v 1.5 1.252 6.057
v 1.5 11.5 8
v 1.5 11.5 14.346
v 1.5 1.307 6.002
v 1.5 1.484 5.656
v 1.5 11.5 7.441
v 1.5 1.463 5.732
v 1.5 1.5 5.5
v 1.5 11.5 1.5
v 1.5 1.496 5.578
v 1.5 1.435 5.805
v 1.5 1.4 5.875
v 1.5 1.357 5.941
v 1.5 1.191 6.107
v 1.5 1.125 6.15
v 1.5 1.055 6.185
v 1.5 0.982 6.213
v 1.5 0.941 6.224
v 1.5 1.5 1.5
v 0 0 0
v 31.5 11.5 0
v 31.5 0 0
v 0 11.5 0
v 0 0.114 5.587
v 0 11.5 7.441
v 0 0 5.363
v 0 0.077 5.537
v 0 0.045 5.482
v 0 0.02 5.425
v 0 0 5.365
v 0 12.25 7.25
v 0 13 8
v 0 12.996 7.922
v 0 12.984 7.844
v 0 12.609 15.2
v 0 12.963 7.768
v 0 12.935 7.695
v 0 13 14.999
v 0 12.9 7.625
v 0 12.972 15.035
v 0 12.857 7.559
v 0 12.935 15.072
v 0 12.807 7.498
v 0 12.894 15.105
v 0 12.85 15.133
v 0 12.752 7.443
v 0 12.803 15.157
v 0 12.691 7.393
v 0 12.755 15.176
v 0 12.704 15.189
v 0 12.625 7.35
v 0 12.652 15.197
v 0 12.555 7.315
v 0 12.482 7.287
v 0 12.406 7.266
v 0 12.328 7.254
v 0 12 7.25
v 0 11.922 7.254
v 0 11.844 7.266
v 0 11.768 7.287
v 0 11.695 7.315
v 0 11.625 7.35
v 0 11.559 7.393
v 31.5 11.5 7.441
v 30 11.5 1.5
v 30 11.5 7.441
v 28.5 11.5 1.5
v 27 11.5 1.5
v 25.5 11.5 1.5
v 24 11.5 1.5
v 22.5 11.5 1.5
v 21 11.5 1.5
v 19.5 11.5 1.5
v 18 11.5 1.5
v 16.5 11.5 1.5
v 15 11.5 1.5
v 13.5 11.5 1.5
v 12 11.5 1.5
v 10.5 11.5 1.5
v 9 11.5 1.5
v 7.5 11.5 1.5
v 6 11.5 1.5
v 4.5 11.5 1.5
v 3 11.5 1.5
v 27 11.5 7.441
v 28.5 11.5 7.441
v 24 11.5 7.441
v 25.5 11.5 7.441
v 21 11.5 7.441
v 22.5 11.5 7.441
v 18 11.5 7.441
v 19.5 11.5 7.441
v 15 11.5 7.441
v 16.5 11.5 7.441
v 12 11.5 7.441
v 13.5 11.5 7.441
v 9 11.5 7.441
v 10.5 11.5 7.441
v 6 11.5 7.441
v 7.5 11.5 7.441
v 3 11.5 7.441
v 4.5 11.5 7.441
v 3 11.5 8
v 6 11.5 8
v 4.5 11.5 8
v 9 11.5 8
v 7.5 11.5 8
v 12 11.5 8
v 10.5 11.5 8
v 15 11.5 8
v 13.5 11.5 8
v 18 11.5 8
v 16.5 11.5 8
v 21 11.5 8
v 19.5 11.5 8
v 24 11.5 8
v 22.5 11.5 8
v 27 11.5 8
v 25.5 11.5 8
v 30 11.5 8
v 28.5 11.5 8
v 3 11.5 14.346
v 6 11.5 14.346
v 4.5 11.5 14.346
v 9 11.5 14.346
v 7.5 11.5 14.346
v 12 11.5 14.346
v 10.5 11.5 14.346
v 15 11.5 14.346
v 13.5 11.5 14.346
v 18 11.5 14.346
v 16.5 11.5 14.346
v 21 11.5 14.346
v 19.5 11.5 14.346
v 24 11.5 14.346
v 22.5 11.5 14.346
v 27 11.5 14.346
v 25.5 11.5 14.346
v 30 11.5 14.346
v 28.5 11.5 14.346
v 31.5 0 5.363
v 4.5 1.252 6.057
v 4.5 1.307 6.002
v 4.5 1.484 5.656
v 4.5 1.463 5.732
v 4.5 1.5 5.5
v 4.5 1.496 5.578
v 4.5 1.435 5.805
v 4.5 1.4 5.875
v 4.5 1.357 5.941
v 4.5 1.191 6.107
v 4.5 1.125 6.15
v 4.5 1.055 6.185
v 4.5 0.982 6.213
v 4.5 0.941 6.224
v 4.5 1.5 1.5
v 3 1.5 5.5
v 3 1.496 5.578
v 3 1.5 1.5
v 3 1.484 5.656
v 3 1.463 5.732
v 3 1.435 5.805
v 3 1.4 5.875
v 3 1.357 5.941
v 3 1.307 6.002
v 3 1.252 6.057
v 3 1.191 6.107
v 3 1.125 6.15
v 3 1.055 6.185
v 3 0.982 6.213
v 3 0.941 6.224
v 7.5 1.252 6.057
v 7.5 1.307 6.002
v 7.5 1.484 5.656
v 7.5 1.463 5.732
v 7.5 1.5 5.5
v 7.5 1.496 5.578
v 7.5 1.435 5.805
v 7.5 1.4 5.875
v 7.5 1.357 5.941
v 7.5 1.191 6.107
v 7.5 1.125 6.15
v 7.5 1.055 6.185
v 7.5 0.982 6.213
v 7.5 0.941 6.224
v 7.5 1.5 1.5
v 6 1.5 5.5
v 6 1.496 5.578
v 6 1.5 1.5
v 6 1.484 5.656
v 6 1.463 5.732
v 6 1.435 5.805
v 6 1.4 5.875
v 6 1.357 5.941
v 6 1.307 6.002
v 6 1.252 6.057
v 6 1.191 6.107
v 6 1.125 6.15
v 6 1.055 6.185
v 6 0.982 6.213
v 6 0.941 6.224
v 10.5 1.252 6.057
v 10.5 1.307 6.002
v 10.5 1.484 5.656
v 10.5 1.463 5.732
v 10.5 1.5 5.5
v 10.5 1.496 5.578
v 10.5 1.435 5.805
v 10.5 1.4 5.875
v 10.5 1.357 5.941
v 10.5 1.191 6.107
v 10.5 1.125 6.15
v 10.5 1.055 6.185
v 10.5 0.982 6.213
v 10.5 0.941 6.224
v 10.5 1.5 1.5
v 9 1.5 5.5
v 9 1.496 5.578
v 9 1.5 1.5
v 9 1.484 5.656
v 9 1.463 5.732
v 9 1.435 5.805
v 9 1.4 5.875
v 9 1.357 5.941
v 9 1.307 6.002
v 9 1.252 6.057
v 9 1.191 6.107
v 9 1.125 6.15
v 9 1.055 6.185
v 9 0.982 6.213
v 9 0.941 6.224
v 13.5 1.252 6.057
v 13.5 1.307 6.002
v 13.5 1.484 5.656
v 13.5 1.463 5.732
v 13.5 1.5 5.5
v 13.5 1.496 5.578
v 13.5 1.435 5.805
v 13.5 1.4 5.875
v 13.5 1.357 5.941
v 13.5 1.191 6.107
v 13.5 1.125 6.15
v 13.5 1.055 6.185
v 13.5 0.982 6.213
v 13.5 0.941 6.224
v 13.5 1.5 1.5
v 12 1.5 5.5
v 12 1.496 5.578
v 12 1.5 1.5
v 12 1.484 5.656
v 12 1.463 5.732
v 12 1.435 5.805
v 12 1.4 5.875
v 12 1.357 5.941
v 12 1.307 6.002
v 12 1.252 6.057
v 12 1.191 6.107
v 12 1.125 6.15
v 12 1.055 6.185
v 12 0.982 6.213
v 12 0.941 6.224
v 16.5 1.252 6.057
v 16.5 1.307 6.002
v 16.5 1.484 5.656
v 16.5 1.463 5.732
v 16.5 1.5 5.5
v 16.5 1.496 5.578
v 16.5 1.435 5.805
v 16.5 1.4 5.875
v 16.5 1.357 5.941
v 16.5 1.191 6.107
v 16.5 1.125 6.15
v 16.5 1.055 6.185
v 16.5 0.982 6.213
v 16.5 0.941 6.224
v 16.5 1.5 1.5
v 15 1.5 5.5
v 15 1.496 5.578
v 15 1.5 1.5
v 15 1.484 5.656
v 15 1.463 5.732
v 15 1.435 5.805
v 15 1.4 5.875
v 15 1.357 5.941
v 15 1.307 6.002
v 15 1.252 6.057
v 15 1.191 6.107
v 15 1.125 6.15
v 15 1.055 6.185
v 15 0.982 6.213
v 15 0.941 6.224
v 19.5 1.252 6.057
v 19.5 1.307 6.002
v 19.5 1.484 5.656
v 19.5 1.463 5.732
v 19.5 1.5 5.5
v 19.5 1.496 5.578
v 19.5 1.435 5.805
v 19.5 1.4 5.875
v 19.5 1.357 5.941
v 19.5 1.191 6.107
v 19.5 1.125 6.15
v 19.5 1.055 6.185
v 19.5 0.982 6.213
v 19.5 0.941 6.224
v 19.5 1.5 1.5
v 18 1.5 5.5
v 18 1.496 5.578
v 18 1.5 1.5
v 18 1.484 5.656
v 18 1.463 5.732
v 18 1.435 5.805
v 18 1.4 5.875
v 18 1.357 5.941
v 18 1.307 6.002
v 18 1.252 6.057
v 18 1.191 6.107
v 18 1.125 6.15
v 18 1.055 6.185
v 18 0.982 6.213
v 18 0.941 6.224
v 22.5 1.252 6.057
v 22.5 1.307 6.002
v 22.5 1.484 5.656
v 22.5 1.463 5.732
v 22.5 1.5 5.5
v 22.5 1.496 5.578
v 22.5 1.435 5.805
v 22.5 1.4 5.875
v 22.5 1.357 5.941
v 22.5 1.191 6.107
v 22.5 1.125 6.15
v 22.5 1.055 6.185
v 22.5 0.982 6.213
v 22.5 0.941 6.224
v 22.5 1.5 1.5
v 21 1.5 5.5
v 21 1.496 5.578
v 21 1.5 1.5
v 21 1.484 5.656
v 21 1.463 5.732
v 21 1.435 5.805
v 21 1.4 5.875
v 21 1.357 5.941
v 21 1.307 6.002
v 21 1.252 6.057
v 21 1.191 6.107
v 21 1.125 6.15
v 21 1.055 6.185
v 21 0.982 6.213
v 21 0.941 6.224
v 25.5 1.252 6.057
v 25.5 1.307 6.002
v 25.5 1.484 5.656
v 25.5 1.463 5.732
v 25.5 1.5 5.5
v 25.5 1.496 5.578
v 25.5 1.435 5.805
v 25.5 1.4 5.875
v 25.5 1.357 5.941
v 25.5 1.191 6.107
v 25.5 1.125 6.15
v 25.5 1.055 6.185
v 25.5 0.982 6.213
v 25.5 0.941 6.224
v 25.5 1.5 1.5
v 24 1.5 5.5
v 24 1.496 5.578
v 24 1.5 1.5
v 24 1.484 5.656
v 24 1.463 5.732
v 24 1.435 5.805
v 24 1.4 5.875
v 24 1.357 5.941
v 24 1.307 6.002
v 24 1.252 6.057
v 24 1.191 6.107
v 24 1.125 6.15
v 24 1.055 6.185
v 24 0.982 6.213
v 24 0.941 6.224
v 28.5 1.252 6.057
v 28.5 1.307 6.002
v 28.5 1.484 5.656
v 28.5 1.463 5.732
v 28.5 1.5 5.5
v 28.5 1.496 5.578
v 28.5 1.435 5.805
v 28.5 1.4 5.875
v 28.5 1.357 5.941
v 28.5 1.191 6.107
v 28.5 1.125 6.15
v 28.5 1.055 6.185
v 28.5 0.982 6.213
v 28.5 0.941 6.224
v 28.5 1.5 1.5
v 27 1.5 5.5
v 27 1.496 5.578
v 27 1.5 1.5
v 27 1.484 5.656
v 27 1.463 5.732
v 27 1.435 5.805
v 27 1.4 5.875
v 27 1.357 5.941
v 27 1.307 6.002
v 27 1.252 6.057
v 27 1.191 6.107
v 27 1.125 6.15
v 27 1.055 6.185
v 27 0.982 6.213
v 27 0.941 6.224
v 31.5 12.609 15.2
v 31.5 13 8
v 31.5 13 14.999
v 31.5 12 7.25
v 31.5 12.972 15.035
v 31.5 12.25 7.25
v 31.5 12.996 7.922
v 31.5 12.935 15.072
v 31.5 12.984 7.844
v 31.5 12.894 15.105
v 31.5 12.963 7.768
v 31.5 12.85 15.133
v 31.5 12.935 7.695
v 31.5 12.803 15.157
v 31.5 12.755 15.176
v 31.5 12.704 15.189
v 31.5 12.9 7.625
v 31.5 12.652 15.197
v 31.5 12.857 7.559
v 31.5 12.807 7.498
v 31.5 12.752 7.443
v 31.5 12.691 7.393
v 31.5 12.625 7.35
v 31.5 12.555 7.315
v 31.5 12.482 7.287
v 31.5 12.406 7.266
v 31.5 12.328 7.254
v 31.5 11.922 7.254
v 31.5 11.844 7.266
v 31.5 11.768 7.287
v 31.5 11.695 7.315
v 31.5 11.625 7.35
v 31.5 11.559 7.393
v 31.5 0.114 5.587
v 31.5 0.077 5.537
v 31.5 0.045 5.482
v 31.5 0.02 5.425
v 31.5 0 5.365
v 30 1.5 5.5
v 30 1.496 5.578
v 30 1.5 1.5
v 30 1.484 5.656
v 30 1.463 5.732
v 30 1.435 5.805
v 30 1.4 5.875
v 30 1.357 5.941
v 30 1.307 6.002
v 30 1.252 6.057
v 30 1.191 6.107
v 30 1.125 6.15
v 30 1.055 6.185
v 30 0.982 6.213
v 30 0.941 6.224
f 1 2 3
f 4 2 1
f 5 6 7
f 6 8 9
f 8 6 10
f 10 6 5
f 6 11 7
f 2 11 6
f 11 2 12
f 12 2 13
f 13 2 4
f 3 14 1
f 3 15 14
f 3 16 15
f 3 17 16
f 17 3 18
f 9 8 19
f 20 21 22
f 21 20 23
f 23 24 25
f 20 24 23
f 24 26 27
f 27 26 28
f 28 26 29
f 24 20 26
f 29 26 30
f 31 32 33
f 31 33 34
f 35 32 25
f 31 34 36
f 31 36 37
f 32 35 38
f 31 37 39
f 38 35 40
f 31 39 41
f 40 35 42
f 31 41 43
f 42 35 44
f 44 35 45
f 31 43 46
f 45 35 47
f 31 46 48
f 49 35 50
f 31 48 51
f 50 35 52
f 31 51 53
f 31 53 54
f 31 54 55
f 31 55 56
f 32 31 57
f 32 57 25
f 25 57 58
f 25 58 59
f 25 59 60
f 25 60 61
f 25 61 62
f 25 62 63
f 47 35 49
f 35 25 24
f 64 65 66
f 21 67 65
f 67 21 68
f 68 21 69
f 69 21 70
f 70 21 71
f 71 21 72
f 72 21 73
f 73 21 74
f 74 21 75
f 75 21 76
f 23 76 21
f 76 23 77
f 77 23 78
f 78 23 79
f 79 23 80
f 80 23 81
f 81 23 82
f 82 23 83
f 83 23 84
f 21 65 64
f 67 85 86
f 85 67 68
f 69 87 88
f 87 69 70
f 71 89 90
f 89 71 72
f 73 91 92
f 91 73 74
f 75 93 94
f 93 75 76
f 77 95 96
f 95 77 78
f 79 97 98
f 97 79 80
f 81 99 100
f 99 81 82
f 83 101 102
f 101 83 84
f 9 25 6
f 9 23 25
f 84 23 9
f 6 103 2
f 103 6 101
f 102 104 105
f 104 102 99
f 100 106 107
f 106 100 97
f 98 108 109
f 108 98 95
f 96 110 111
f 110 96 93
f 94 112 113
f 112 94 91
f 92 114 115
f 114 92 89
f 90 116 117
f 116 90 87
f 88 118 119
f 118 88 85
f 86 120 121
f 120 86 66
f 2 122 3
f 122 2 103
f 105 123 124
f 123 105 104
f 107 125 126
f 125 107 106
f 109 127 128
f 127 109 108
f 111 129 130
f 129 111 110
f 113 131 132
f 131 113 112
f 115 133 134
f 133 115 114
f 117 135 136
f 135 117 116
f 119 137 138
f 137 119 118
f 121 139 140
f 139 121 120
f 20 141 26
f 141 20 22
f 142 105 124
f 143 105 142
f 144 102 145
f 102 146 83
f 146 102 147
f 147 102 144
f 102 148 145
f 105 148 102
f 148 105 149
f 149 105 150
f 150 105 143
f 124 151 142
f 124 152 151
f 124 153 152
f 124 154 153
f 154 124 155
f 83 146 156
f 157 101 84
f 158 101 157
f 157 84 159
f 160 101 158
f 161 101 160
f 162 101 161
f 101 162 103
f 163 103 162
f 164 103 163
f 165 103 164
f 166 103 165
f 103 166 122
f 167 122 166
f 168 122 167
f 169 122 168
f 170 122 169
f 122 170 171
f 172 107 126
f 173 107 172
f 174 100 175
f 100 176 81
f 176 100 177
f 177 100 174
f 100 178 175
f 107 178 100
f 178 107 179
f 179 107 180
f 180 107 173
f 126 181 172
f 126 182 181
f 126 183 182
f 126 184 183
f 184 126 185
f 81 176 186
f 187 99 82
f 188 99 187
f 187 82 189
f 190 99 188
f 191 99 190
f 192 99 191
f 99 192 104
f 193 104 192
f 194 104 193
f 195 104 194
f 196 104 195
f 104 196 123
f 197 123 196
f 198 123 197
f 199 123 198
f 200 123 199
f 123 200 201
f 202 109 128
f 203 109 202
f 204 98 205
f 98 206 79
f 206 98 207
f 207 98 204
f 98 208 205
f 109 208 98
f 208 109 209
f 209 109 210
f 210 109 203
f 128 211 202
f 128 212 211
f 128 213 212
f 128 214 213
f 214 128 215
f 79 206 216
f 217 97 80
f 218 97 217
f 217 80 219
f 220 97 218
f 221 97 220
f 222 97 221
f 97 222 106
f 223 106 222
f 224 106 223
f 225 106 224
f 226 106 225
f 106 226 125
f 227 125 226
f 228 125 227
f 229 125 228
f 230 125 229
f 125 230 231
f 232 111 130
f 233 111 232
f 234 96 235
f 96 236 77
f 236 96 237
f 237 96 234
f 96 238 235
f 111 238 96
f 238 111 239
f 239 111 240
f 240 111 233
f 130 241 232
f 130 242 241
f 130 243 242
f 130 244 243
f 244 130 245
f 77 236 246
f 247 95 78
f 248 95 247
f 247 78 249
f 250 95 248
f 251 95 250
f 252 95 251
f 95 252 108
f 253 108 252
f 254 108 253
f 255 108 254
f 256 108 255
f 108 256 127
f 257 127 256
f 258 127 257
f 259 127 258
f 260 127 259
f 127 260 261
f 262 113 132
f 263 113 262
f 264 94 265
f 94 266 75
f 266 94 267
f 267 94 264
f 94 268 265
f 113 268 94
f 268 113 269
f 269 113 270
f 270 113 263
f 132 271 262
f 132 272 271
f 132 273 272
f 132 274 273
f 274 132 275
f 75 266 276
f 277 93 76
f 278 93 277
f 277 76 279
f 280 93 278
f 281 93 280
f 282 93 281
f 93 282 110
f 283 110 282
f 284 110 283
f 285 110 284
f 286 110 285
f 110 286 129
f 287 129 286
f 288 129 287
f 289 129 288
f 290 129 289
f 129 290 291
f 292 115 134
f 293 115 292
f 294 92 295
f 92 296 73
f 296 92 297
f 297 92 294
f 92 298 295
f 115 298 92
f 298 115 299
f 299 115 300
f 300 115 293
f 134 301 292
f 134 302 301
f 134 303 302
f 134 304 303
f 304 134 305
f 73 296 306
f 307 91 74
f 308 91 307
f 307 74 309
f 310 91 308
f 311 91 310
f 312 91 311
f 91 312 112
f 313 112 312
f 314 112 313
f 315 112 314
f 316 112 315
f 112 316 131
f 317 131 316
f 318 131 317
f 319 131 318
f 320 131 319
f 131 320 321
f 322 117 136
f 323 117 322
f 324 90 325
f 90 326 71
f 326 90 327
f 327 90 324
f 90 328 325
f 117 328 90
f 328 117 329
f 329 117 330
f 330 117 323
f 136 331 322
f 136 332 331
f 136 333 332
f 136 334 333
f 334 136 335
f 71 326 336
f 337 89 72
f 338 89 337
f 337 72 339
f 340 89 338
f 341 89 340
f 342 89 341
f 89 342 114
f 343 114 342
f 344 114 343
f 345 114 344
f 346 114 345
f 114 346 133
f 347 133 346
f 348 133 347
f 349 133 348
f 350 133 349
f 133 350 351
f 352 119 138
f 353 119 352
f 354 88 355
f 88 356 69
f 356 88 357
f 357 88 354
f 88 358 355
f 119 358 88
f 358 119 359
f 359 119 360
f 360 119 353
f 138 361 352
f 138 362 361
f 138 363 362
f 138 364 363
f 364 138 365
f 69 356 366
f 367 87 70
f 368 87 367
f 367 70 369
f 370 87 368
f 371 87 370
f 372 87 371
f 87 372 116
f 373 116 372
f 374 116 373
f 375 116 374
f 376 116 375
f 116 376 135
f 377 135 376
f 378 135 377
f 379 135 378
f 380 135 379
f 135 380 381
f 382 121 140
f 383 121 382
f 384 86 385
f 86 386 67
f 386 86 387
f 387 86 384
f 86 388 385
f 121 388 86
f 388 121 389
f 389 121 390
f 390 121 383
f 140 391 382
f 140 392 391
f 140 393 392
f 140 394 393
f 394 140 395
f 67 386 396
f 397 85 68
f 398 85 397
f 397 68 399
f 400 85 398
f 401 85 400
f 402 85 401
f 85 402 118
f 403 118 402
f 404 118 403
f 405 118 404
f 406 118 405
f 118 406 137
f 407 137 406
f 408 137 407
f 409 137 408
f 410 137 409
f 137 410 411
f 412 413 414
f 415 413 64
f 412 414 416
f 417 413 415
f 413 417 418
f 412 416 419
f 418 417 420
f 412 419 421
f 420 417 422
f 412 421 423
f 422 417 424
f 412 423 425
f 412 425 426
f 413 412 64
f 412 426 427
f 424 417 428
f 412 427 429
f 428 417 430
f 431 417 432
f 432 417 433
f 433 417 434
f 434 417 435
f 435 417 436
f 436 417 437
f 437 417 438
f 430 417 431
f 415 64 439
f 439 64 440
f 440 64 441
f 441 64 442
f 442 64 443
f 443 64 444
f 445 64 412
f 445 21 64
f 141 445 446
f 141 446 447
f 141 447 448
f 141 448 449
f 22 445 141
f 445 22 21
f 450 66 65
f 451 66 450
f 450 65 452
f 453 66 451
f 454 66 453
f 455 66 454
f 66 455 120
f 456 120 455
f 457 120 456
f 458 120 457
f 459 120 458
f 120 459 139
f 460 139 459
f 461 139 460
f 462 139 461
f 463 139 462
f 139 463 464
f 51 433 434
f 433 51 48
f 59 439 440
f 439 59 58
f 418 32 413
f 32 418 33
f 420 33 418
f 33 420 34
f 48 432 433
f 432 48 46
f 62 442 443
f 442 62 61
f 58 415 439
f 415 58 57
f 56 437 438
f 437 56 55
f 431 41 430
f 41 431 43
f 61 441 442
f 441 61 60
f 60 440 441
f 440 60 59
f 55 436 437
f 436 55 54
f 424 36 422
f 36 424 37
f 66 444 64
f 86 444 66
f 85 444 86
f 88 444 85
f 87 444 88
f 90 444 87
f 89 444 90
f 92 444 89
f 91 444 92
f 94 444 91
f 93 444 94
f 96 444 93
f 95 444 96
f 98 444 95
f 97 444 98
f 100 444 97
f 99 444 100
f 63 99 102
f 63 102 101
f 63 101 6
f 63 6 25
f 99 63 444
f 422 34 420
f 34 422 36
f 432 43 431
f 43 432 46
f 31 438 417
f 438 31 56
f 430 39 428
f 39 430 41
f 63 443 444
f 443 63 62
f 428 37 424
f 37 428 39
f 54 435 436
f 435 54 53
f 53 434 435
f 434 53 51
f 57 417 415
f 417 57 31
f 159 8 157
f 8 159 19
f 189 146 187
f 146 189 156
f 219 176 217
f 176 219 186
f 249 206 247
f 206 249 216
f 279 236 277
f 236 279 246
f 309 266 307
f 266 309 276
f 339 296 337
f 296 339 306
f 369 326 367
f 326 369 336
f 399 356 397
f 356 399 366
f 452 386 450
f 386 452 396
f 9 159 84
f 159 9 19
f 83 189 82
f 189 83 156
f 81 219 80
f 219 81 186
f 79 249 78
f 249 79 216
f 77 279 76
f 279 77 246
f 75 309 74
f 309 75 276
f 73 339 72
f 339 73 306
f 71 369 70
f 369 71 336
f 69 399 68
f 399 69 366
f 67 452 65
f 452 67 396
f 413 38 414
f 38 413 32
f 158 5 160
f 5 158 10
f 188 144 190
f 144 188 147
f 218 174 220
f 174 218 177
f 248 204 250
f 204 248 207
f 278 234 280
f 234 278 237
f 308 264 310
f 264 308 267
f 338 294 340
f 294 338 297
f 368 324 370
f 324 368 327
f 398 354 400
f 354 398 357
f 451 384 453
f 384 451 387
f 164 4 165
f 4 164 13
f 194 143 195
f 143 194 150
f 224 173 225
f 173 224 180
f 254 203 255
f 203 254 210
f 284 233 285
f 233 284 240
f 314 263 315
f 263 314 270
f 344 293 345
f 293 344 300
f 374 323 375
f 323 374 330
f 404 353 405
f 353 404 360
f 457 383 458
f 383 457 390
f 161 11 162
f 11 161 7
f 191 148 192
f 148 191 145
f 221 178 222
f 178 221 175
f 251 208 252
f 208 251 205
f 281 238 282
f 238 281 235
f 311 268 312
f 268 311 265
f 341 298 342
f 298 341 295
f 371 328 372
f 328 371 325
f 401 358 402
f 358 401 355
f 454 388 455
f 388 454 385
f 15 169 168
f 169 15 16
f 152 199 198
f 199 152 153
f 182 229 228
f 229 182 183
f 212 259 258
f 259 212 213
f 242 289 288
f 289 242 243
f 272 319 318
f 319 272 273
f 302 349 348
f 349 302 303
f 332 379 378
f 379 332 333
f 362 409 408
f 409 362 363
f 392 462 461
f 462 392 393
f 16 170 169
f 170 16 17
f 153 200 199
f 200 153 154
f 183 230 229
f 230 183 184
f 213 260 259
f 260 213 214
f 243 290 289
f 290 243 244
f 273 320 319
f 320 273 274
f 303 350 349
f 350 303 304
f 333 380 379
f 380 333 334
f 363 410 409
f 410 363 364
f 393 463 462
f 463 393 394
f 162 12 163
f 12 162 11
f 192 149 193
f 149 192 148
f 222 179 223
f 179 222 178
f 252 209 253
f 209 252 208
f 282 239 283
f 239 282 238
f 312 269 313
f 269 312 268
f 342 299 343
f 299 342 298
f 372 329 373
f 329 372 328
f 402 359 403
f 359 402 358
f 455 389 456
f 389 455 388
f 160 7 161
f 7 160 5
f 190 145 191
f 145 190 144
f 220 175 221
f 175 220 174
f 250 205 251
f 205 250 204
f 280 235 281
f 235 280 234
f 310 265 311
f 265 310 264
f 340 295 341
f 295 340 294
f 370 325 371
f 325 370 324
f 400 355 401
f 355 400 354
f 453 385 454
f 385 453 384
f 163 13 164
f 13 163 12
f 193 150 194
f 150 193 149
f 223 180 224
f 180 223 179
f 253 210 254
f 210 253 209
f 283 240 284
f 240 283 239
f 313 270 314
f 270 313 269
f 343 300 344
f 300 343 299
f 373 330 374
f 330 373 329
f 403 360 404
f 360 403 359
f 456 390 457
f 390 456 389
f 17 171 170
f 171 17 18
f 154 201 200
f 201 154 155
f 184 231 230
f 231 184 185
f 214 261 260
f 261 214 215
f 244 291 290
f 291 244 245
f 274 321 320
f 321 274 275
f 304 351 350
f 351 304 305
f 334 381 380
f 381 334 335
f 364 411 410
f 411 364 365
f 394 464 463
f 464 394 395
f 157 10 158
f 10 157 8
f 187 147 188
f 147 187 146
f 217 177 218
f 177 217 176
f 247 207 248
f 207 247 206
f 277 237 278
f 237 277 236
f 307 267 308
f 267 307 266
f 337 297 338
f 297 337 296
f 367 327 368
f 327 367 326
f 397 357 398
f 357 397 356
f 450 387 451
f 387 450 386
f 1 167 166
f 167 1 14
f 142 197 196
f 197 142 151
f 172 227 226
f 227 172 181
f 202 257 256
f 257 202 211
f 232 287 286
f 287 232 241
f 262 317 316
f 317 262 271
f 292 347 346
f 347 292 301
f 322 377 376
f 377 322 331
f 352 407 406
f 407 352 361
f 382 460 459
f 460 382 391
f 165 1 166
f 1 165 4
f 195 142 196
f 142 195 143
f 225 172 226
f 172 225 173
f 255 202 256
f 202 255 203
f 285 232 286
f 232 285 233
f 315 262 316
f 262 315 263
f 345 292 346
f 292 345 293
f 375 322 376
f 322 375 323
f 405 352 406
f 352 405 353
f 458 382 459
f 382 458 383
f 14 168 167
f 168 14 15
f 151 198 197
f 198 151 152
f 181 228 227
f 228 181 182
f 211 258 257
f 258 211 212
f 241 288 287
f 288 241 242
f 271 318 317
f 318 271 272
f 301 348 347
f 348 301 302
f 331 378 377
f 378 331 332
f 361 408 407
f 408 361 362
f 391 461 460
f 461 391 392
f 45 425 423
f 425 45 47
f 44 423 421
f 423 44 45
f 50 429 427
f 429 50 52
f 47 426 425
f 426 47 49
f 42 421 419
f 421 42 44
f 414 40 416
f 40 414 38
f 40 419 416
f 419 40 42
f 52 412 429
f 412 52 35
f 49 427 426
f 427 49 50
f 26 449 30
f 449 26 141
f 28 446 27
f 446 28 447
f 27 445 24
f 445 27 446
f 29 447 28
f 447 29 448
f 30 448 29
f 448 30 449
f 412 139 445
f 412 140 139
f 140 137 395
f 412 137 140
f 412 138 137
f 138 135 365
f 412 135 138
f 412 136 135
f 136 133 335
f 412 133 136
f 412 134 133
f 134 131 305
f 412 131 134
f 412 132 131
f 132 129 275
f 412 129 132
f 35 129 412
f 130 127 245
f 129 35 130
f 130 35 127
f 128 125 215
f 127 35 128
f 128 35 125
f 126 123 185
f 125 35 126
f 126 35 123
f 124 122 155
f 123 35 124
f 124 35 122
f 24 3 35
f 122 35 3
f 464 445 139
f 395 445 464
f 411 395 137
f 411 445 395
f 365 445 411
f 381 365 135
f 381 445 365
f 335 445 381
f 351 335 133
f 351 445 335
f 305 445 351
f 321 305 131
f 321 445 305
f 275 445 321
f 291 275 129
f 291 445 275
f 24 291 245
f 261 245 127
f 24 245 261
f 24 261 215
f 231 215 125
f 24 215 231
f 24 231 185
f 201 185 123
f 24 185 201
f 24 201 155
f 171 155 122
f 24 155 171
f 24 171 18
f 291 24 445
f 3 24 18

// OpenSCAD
count = 10;
tot_len = count * 3 + 1.5;
cyl_sides = 60;
difference() {
	union(){
		for (i = [0 : abs(3) : count * 3]) {
			translate([i, 0, 0]){
				cube([1.5, 11.5, 15.5], center=false);
			}
		}
		translate([0, 0, 0]){
			cube([tot_len, 1.5, 5.5], center=false);
		}
		cube([tot_len, 11.5, 1.5], center=false);
		translate([0, 11.5, 8]){
			cube([tot_len, 1.5, 7.5], center=false);
		}
		translate([0, 0.75, 5.5]){
			rotate([0, 90, 0]){
				{
					$fn=cyl_sides;
					cylinder(r1=0.75, r2=0.75, h=tot_len, center=false);
				}
			}
		}
		difference() {
				hull(){
					translate([0, 12.25, 8]){
						rotate([0, 90, 0]){
							{
								$fn=cyl_sides;
								cylinder(r1=0.75, r2=0.75, h=tot_len, center=false);
							}
						}
					}
					translate([0, 12, 8]){
						rotate([0, 90, 0]){
							{
								$fn=cyl_sides;
								cylinder(r1=0.75, r2=0.75, h=tot_len, center=false);
							}
						}
					}
				}
				cube([tot_len, 11.5, 15.5], center=false);
		 }
	}
	translate([-0.5, 0, 5.5]){
		rotate([(atan(10 / 13)), 0, 0]){
			cube([tot_len+1, 20, 10], center=false);
		}
	}
	translate([-0.5, 12.6, 14.7]){
		rotate([30, 0, 0]){
			difference() {
				cube([tot_len + 1, 2, 2], center=false);

				rotate([0, 90, 0]){
					{
						$fn=cyl_sides;
						cylinder(r1=0.5, r2=0.5, h=tot_len + 1, center=false);
					}
				}
			}
		}
	}
	translate([-0.5, 0.58, 5.21]){
		rotate([135, 0, 0]){
			difference() {
				cube([tot_len + 1, 2, 0.4], center=false);

				rotate([0, 90, 0]){
					{
						$fn=cyl_sides;
						cylinder(r1=0.6, r2=0.6, h=tot_len + 1, center=false);
					}
				}
			}
		}
	}
}
